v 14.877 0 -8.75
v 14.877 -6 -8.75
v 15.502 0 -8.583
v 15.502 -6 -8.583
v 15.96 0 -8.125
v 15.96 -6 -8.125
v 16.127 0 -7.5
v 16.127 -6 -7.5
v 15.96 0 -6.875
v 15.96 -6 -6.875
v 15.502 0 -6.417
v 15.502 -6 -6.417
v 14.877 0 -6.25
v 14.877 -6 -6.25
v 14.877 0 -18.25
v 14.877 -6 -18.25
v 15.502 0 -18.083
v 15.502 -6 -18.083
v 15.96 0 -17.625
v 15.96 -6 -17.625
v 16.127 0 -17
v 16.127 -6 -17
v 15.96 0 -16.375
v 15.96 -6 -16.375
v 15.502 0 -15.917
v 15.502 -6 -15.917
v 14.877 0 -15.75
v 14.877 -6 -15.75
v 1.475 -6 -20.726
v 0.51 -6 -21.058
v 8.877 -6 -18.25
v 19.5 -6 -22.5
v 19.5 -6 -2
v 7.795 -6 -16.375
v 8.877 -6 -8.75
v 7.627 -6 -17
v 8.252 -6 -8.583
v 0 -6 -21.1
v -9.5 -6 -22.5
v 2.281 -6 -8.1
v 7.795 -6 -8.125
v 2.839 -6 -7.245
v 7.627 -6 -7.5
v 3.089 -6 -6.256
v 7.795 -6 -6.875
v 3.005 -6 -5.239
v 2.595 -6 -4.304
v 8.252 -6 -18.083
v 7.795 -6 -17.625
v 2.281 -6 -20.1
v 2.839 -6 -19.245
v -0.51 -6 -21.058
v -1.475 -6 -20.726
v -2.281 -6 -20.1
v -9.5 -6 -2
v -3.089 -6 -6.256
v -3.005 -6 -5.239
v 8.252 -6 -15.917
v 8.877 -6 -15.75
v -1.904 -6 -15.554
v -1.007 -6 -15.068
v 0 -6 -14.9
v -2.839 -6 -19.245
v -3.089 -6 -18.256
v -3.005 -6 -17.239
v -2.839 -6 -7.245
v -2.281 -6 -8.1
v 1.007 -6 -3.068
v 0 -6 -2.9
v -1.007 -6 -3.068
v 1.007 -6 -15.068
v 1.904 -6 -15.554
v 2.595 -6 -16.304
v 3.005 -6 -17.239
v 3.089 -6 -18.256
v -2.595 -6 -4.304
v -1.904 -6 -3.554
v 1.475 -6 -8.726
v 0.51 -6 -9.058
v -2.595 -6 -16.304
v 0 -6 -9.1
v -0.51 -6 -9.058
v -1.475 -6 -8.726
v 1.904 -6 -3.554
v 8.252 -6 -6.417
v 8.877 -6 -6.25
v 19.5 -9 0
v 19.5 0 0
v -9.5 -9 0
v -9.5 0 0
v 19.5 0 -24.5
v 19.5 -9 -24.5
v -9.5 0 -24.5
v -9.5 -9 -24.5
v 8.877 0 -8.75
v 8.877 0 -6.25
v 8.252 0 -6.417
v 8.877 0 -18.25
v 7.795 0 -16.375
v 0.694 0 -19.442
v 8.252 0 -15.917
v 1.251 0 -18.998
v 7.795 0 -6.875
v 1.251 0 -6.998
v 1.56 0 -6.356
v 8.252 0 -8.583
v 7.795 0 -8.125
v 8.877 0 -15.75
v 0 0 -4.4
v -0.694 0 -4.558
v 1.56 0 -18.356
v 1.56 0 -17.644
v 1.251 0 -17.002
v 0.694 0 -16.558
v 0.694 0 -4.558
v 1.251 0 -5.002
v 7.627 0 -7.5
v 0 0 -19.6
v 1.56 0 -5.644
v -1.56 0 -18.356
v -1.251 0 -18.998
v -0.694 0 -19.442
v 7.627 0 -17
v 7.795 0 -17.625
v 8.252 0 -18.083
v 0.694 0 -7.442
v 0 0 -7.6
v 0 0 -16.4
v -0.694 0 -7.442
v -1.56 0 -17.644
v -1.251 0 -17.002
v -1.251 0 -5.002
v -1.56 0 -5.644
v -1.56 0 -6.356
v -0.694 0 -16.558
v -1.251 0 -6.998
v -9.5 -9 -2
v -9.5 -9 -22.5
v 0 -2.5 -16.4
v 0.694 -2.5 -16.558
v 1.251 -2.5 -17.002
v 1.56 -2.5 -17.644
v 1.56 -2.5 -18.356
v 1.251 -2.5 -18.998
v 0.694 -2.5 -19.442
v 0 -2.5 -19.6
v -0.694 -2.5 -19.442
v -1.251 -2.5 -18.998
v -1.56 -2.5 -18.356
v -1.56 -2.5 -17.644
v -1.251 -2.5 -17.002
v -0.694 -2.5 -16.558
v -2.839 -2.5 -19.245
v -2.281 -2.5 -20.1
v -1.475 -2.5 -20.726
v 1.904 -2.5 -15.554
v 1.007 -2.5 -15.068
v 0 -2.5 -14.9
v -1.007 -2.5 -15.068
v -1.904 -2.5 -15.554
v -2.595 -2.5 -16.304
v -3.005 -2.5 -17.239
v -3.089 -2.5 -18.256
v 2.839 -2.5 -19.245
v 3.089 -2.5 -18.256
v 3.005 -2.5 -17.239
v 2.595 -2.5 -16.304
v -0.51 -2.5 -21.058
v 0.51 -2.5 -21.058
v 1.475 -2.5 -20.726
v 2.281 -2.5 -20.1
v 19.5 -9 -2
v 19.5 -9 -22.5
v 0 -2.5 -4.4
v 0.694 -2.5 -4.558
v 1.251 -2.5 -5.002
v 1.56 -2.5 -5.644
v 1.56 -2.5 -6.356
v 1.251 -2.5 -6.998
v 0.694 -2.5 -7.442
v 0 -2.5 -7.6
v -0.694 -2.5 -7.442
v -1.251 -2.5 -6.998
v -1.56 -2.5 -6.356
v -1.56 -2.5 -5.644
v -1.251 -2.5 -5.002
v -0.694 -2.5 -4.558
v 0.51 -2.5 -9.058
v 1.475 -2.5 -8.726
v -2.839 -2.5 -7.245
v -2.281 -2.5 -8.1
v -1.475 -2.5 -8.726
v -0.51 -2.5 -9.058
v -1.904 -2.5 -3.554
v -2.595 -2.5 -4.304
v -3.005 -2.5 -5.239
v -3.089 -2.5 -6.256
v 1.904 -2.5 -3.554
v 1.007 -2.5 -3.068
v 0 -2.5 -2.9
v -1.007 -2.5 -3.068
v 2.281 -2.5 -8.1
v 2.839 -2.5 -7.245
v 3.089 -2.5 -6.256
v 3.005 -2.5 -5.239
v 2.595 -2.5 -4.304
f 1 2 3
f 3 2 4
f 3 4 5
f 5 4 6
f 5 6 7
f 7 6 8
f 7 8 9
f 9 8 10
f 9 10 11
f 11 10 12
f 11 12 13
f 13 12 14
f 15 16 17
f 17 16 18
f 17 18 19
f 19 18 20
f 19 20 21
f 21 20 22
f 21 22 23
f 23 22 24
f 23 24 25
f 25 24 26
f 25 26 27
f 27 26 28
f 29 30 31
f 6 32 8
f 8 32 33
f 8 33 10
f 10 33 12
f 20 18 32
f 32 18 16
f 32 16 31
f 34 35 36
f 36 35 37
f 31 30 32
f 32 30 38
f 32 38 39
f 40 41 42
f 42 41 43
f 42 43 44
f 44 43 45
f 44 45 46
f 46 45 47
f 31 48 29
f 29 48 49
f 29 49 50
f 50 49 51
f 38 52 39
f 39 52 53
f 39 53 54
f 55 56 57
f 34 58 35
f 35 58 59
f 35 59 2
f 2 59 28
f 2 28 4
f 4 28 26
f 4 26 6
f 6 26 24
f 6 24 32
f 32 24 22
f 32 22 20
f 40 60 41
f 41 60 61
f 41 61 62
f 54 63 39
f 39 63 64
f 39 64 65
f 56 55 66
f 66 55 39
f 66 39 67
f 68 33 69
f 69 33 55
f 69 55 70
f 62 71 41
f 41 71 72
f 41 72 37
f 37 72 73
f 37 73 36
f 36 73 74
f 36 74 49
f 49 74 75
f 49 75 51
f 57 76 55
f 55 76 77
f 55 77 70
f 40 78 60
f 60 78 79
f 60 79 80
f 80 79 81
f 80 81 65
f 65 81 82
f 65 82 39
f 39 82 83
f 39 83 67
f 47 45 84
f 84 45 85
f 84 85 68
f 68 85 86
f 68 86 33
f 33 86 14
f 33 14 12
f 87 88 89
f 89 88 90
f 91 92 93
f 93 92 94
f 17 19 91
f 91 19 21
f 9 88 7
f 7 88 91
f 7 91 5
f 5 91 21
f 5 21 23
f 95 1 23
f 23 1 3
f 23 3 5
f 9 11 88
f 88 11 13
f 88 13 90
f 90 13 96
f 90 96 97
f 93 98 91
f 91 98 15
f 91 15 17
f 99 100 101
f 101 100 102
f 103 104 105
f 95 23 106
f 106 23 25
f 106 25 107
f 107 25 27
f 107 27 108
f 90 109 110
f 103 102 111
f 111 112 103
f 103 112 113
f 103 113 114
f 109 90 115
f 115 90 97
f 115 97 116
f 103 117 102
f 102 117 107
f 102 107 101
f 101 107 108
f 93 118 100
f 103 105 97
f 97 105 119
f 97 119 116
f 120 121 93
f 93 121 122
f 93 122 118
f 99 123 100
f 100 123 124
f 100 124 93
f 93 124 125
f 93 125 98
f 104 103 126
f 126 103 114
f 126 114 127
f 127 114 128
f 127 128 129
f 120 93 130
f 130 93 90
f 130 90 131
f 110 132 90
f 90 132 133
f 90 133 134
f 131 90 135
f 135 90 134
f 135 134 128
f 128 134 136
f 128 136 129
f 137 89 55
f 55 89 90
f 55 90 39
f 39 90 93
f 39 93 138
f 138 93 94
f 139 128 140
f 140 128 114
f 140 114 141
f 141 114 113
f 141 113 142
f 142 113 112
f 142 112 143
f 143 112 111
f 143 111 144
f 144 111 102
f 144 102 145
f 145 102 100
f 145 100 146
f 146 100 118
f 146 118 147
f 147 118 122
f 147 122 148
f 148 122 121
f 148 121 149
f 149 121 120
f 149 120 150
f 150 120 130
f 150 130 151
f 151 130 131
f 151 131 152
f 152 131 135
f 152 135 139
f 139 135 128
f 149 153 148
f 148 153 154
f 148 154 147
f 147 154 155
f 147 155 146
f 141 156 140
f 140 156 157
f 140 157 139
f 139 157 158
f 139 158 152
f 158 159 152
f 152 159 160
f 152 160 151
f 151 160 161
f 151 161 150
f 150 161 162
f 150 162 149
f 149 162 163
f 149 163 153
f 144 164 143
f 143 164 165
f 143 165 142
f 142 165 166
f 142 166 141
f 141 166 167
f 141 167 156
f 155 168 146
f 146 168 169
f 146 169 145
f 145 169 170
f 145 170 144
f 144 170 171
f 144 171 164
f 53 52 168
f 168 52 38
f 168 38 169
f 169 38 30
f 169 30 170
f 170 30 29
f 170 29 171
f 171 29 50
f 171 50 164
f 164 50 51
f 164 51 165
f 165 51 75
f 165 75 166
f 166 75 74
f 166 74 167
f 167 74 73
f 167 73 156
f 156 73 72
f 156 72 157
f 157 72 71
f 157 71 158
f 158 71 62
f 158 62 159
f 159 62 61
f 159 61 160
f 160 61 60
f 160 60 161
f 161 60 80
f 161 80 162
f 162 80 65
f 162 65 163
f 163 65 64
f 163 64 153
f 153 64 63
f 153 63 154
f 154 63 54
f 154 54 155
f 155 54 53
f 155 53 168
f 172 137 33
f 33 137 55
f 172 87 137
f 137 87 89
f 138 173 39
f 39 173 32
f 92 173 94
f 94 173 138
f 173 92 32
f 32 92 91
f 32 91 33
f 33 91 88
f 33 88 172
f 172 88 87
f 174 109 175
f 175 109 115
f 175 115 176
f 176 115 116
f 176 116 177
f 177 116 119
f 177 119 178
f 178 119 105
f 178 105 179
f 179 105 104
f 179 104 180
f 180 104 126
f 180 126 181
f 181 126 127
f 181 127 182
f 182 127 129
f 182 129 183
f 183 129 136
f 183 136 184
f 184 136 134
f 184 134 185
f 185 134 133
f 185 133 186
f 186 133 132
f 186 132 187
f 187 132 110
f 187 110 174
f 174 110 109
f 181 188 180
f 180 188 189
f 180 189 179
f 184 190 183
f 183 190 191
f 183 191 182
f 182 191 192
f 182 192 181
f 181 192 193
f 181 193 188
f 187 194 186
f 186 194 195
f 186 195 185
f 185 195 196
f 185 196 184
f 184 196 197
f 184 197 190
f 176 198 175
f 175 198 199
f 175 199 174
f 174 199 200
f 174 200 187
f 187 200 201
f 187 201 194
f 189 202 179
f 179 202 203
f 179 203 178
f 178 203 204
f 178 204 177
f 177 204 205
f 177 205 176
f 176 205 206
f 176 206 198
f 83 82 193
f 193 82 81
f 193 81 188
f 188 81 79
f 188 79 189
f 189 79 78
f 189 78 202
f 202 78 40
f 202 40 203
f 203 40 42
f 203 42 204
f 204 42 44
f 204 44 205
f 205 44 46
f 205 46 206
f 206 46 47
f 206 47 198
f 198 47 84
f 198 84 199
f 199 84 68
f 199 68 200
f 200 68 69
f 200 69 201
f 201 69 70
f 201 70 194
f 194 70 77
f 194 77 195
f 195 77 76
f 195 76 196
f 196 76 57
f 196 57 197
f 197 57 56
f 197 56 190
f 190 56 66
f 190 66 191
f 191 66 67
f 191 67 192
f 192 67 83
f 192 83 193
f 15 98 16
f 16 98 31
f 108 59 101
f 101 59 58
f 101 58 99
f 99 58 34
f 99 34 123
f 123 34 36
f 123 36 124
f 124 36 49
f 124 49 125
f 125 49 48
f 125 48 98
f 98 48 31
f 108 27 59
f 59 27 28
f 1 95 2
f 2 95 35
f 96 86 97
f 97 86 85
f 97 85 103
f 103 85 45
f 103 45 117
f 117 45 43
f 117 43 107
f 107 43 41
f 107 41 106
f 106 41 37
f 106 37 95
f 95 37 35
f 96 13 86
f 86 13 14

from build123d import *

# Parameters (mm, degrees)
EXTRU_MINCE1_DEPTH      = 9.5
ESQUISSE2_R             = 1.6
ENL_V_MAT_EXTRU_1_DEPTH = 30.774149862
ENL_V_START             = -2.5
ESQUISSE4_R             = 3.1
ENL_V_MAT_EXTRU_3_DEPTH = 28.274149862
SKETCH2_W               = 19
SKETCH2_H               = 8
CUT_EXTRUDE2_DEPTH      = 26.069902273
SKETCH4_W               = 19
SKETCH4_H               = 2
BOSS_EXTRUDE2_DEPTH     = 3
BOSS_EXTRUDE3_DEPTH     = 10
LPATTERN1_COUNT         = 2
LPATTERN1_PITCH         = 12
SKETCH8_R               = 1.25
CUT_EXTRUDE7_DEPTH      = 32.882597134
CUT_EXTRUDE8_DEPTH      = 32.882597134


with BuildPart() as part:
    # Esquisse1 → Extru.-Mince1 (new, symmetric)
    with BuildSketch(Plane(origin=(0, 0, 0), x_dir=(0, 0, -1), z_dir=(1, 0, 0))):
        Polygon((24.5, 0), (0, 0), (0, -14), (6, -14), (6, -6), (24.5, -6), align=None)
    extrude(amount=EXTRU_MINCE1_DEPTH, both=True)

    # Esquisse2 → Enlèv. mat.-Extru.1 (cut, through all)
    with BuildSketch(Plane(origin=(0, 0, 0), x_dir=(1, 0, 0), z_dir=(0, 1, 0))):
        with Locations((0, 18)):
            Circle(ESQUISSE2_R)
    enl_v_mat_extru_1 = extrude(amount=-ENL_V_MAT_EXTRU_1_DEPTH, mode=Mode.SUBTRACT)

    # Esquisse4 → Enlèv. mat.-Extru.3 (cut, through all)
    with BuildSketch(Plane(origin=(0, 0, 0), x_dir=(1, 0, 0), z_dir=(0, 1, 0)).offset(ENL_V_START)):
        with Locations((0, 18)):
            Circle(ESQUISSE4_R)
    enl_v_mat_extru_3 = extrude(amount=-ENL_V_MAT_EXTRU_3_DEPTH, mode=Mode.SUBTRACT)

    # Sketch2 → Cut-Extrude2 (cut, through all)
    with BuildSketch(Plane(origin=(0, 0, -6), x_dir=(-1, 0, 0), z_dir=(0, 0, -1))):
        with Locations((0, -10)):
            Rectangle(SKETCH2_W, SKETCH2_H)
    extrude(amount=-CUT_EXTRUDE2_DEPTH, mode=Mode.SUBTRACT)

    # Sketch4 → Boss-Extrude2 (add)
    with BuildSketch(Plane.XZ.offset(6)):
        with Locations((0, -1)):
            Rectangle(SKETCH4_W, SKETCH4_H)
        with Locations((0, -23.5)):
            Rectangle(SKETCH4_W, SKETCH4_H)
    extrude(amount=BOSS_EXTRUDE2_DEPTH)

    # Sketch5 → Boss-Extrude3 (add)
    with BuildSketch(Plane(origin=(9.5, 0, 0), x_dir=(0, 0, -1), z_dir=(1, 0, 0))):
        Polygon((0, 0), (0, -9), (2, -9), (2, -6), (22.5, -6), (22.5, -9), (24.5, -9), (24.5, 0), align=None)
    extrude(amount=BOSS_EXTRUDE3_DEPTH)

    # LPattern1: Enlèv. mat.-Extru.1, Enlèv. mat.-Extru.3 ×2
    with Locations(*[(0, 0, i * LPATTERN1_PITCH) for i in range(1, LPATTERN1_COUNT)]):
        add(enl_v_mat_extru_1, mode=Mode.SUBTRACT)
        add(enl_v_mat_extru_3, mode=Mode.SUBTRACT)

    # Sketch8 → Cut-Extrude7 (cut, through all)
    with BuildSketch(Plane.XZ.offset(6)):
        with Locations((14.877046193, -17)):
            Circle(SKETCH8_R)
        with Locations((14.877046193, -7.5)):
            Circle(SKETCH8_R)
    extrude(amount=-CUT_EXTRUDE7_DEPTH, mode=Mode.SUBTRACT)

    # Sketch9 → Cut-Extrude8 (cut, through all)
    with BuildSketch(Plane.XZ.offset(6)):
        with BuildLine():
            Line((14.877046193, -8.75), (8.877046193, -8.75))
            ThreePointArc((8.877046193, -8.75), (7.627046193, -7.5), (8.877046193, -6.25))
            Line((8.877046193, -6.25), (14.877046193, -6.25))
            ThreePointArc((14.877046193, -6.25), (16.127046193, -7.5), (14.877046193, -8.75))
        make_face()
        with BuildLine():
            Line((14.877046193, -18.25), (8.877046193, -18.25))
            ThreePointArc((8.877046193, -18.25), (7.627046193, -17), (8.877046193, -15.75))
            Line((8.877046193, -15.75), (14.877046193, -15.75))
            ThreePointArc((14.877046193, -15.75), (16.127046193, -17), (14.877046193, -18.25))
        make_face()
    extrude(amount=-CUT_EXTRUDE8_DEPTH, mode=Mode.SUBTRACT)


solid = part.part
